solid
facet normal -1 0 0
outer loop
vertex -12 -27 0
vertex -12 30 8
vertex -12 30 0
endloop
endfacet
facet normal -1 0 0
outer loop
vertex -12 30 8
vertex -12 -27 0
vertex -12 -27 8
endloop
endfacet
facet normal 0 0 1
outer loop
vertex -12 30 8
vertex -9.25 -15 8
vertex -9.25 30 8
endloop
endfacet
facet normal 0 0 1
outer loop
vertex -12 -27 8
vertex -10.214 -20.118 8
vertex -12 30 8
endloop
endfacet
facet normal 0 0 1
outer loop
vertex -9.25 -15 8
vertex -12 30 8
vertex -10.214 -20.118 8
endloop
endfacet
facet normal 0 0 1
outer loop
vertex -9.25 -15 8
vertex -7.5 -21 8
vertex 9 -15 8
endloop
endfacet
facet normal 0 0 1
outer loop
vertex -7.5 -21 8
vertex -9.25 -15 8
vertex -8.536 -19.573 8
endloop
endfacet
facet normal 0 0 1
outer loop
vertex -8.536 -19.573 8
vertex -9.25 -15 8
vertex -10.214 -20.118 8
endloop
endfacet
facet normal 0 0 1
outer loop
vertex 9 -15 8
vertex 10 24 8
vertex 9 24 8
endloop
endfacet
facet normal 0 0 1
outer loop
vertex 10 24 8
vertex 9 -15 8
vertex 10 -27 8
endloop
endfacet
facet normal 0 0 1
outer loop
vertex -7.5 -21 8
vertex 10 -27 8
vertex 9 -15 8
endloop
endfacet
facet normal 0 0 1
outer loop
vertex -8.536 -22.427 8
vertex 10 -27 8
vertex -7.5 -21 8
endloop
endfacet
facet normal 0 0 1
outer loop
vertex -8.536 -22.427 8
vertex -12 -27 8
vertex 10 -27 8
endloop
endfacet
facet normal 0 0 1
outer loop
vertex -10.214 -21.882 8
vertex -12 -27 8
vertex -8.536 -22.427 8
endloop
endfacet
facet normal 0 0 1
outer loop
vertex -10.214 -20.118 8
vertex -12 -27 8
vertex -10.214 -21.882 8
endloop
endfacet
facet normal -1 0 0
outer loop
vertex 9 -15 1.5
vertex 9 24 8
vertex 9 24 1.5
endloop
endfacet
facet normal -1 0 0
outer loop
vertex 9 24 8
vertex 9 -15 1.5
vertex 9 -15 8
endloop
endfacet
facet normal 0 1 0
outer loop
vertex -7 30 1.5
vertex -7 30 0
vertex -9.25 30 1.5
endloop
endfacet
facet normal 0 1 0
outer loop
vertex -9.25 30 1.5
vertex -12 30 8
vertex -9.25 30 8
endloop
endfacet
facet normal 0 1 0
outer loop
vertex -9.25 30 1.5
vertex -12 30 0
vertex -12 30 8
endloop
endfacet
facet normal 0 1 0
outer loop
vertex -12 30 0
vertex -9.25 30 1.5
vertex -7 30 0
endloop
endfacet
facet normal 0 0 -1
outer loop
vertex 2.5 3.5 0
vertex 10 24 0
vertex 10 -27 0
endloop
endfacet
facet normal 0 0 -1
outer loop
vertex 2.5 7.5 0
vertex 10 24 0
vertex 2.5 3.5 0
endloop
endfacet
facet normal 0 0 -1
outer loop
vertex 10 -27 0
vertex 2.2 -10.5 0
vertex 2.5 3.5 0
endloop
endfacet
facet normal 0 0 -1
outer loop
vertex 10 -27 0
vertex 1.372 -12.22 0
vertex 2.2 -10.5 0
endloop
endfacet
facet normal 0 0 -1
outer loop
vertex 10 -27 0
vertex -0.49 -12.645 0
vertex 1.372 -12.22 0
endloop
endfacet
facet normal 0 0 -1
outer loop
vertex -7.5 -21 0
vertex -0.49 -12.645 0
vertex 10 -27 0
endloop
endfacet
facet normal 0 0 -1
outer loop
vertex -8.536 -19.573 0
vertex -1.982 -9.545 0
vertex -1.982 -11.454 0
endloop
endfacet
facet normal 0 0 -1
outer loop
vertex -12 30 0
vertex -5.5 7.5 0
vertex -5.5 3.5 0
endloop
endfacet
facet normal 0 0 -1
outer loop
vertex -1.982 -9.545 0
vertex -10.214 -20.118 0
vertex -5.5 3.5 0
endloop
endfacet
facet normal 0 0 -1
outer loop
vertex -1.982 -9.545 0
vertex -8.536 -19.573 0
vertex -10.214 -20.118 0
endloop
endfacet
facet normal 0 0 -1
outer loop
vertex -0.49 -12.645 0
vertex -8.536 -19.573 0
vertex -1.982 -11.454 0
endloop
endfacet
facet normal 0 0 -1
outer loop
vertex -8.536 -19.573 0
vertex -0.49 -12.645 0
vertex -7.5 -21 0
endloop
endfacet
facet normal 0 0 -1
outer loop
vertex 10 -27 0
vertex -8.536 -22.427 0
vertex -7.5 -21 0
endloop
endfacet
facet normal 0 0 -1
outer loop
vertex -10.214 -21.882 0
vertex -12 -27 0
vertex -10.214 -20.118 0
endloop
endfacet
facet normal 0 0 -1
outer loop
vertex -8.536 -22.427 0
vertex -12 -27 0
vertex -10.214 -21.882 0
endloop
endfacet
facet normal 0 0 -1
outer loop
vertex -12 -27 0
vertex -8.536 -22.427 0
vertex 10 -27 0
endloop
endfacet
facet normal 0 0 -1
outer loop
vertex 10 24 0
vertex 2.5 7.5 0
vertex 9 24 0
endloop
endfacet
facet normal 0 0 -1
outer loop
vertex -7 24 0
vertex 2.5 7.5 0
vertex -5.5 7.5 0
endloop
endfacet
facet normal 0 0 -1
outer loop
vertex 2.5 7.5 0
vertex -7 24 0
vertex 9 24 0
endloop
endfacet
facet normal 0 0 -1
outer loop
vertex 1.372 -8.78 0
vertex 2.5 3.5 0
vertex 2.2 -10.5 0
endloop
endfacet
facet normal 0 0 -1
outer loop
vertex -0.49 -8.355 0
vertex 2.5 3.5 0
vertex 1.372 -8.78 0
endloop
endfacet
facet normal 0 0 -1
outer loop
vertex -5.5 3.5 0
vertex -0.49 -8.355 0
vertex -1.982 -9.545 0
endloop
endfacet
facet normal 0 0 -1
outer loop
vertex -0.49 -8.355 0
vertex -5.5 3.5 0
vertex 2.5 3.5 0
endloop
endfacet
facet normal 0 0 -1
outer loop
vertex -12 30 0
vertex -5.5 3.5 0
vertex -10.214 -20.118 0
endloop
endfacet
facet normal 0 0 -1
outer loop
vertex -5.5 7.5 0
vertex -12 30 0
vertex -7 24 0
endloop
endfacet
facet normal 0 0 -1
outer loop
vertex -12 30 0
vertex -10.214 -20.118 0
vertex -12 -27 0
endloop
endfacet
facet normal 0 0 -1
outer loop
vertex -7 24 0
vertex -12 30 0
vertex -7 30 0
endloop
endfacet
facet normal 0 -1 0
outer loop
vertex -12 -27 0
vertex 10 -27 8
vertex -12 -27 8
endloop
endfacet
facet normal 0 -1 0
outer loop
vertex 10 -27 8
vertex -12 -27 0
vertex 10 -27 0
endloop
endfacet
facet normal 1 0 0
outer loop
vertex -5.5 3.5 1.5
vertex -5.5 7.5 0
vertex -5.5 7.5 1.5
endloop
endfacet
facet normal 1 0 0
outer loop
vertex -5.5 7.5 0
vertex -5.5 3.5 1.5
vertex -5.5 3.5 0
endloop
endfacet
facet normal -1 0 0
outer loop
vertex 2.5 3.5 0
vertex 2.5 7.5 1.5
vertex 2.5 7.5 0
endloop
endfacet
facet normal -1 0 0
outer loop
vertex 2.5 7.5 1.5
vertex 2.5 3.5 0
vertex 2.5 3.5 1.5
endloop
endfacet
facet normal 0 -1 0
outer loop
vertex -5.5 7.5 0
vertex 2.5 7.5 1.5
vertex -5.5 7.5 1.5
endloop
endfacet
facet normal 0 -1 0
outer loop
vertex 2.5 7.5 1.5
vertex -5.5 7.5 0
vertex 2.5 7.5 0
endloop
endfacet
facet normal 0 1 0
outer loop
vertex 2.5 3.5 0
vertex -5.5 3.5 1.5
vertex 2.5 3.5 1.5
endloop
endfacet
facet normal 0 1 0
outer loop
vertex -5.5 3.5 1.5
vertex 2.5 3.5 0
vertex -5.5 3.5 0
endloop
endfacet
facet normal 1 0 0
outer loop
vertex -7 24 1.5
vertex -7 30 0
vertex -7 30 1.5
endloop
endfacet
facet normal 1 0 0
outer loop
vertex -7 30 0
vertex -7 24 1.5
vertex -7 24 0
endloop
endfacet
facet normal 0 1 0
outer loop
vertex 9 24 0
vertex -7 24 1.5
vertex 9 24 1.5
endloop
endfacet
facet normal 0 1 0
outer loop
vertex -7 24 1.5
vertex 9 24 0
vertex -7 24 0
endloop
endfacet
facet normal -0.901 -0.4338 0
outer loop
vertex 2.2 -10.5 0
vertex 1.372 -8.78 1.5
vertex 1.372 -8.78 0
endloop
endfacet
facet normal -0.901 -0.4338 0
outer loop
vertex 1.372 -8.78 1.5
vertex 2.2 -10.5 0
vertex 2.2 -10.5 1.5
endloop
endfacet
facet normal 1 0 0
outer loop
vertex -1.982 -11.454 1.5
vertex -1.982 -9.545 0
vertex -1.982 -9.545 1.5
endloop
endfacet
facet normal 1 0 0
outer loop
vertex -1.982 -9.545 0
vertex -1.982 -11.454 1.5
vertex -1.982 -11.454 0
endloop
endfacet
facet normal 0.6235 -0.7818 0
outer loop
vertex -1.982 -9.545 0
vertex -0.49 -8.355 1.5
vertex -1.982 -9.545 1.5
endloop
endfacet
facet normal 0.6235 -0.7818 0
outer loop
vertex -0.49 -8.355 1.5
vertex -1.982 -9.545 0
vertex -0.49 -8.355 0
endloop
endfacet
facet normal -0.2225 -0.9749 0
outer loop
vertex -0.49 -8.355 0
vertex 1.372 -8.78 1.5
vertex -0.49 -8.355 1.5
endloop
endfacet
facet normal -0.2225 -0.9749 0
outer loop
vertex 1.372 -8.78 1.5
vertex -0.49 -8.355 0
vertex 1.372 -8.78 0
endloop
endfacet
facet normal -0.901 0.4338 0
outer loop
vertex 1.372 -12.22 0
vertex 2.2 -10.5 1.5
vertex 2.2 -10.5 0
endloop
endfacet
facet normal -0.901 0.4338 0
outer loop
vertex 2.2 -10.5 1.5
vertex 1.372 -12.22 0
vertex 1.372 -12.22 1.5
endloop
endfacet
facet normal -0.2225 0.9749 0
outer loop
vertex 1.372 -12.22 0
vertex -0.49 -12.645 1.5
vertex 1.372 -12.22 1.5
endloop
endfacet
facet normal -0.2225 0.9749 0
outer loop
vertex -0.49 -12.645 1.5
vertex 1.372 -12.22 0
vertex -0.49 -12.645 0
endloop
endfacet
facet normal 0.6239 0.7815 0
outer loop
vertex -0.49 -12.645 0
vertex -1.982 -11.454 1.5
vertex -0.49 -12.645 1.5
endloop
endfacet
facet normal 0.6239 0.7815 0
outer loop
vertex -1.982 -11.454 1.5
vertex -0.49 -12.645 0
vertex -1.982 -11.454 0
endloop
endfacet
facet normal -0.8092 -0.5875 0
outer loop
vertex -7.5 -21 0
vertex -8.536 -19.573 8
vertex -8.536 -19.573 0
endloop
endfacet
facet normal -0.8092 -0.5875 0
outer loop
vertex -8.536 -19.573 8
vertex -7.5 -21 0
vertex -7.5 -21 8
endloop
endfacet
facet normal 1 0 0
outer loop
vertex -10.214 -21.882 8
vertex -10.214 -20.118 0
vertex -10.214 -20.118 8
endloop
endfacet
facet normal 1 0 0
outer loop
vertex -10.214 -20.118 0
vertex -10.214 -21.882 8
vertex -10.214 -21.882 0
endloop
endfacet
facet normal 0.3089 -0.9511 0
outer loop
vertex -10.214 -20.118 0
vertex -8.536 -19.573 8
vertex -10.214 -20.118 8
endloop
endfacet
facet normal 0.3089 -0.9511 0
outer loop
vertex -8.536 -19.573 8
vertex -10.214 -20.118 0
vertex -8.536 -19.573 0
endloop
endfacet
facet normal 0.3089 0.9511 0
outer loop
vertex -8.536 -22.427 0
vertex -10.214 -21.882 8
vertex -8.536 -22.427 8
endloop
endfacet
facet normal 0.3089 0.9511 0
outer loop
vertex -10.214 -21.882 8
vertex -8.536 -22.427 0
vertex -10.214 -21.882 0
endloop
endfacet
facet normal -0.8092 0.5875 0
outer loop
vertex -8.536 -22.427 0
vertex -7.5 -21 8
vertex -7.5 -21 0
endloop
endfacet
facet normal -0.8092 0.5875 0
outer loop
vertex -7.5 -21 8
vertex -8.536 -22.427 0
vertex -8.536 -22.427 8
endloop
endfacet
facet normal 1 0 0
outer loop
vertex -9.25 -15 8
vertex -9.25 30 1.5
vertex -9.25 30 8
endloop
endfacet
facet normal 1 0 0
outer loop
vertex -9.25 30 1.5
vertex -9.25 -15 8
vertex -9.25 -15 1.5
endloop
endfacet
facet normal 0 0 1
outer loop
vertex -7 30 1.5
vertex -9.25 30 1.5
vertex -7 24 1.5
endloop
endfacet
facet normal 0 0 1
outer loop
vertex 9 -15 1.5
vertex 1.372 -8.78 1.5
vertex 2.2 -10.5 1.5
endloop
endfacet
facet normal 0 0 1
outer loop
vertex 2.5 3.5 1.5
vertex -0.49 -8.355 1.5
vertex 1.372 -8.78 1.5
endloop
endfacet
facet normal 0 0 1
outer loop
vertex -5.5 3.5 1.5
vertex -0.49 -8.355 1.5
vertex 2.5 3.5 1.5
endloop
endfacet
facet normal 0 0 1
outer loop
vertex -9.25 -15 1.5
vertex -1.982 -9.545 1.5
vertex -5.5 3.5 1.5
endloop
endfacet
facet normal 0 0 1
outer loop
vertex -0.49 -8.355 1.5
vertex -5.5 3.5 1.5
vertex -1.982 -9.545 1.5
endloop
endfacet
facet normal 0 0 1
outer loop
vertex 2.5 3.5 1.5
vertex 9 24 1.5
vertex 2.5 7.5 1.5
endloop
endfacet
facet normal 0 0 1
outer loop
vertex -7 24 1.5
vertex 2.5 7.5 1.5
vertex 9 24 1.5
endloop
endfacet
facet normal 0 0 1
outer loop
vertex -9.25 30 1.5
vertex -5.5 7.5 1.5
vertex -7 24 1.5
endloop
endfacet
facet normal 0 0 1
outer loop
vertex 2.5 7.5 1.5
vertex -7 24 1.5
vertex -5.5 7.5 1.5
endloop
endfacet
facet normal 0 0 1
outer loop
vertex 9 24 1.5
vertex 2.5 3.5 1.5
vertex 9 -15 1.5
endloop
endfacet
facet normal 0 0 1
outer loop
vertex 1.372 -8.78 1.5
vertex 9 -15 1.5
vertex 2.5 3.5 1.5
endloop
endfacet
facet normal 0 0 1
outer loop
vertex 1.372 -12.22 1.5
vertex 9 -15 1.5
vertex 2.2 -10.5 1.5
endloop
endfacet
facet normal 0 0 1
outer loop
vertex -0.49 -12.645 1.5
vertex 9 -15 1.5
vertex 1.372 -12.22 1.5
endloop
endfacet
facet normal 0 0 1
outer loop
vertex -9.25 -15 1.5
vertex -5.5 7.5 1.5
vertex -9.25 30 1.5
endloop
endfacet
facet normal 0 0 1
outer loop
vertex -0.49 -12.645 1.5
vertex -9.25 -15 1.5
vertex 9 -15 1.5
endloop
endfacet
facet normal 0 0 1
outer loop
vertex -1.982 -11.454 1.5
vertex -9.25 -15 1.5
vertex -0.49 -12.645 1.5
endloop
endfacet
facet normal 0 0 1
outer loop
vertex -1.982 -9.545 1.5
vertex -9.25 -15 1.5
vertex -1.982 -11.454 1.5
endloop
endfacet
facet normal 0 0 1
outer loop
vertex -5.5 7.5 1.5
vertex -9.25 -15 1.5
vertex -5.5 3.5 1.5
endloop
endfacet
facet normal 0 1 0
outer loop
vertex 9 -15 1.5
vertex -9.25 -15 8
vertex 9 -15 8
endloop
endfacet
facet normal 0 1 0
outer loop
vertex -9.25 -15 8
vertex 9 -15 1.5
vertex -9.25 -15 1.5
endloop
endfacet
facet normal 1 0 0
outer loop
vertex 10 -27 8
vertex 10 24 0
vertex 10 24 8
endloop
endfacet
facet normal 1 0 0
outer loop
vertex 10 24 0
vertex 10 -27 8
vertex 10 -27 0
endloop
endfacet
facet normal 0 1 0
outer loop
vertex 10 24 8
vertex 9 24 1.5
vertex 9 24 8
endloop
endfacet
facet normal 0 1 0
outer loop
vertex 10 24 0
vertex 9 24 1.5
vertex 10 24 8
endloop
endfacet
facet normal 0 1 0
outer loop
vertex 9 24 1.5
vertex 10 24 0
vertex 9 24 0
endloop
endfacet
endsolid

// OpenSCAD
module base(){
    translate([-12, -27, 0]){
        cube([21, 57, 8]);
    }
};

module window(){
    translate([-5.5, 3.5, 0]){
        cube([8, 4, 10]);
    }
};

module notch(){
    translate([-7, 24, 0]){
        cube([16, 8, 10]);
    }
};

module hole1(){
    translate([0, 5, 0]){
        cylinder(10, 2.2, 2.2, 0);
    }
};

module hole2(){
    translate([0, 5, 0]){
        cylinder(10, 1.5, 1.5, 0);
    }
};

module reset(){
    translate([0, -15.5, 0]){
        hole1();
    }
};

module screws(){
    translate([-9, -26, 0]){
        hole2();
    }
};

module middle(){
    translate([-9.25, -15, 1.5]){
        cube([18.5, 48, 10]);
    }
};

module lip(){
    translate([9, -27, 0]){
        cube([1, 51, 8]);
    }
}

module top(){
    lip();
    difference(){
        base();
        window();
        notch();
        reset();
        screws();
        middle();
    }
}

top();
